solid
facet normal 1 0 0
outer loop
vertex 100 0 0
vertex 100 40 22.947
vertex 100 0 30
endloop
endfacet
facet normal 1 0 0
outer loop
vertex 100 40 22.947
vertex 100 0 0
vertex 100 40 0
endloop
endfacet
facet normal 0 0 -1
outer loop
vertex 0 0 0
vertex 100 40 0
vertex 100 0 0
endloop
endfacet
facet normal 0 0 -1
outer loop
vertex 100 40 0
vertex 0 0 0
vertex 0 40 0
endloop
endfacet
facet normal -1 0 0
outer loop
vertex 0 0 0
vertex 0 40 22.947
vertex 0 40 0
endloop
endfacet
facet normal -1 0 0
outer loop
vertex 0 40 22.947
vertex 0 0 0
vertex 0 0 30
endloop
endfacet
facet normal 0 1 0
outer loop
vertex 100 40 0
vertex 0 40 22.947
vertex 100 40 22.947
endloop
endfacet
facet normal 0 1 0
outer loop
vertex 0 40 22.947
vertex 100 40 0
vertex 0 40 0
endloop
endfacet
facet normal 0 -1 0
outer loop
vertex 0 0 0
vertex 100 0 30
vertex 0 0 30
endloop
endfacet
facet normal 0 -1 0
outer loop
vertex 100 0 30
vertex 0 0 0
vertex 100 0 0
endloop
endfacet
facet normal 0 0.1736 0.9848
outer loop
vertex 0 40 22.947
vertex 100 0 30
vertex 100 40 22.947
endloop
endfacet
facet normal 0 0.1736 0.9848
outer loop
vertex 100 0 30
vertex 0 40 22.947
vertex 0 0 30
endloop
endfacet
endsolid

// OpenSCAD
//
// ktRACK93
//
//

gap1 = 0.001;
gap2 = 0.003;
th = 2;

base();
//base_mir();




module base_mir()
{
difference()
{
    mirror([1,0,0]) base();
}
}



module base()
{
difference()
{

    union()
    {
        translate([0, 0, 0]) cube([100, 40, 30]);
    }
    #translate([0, 0, 30]) rotate([-10, 0, 0]) cube([100, 45, 30]);


}
}



module base_point()
{
difference()
{

    union()
    {
        hull() {
            translate([0, 5, 30]) rotate([-10, 0, 0]) cylinder(h=1, r=10/2, $fn=100);
            translate([-30/2, -20/2, 0]) cube([30, 30, 1]);
        }
    }
    #translate([30/2-12, 20/2-8-8, 0]) cube([12, 8, 3.5]);

}
}
